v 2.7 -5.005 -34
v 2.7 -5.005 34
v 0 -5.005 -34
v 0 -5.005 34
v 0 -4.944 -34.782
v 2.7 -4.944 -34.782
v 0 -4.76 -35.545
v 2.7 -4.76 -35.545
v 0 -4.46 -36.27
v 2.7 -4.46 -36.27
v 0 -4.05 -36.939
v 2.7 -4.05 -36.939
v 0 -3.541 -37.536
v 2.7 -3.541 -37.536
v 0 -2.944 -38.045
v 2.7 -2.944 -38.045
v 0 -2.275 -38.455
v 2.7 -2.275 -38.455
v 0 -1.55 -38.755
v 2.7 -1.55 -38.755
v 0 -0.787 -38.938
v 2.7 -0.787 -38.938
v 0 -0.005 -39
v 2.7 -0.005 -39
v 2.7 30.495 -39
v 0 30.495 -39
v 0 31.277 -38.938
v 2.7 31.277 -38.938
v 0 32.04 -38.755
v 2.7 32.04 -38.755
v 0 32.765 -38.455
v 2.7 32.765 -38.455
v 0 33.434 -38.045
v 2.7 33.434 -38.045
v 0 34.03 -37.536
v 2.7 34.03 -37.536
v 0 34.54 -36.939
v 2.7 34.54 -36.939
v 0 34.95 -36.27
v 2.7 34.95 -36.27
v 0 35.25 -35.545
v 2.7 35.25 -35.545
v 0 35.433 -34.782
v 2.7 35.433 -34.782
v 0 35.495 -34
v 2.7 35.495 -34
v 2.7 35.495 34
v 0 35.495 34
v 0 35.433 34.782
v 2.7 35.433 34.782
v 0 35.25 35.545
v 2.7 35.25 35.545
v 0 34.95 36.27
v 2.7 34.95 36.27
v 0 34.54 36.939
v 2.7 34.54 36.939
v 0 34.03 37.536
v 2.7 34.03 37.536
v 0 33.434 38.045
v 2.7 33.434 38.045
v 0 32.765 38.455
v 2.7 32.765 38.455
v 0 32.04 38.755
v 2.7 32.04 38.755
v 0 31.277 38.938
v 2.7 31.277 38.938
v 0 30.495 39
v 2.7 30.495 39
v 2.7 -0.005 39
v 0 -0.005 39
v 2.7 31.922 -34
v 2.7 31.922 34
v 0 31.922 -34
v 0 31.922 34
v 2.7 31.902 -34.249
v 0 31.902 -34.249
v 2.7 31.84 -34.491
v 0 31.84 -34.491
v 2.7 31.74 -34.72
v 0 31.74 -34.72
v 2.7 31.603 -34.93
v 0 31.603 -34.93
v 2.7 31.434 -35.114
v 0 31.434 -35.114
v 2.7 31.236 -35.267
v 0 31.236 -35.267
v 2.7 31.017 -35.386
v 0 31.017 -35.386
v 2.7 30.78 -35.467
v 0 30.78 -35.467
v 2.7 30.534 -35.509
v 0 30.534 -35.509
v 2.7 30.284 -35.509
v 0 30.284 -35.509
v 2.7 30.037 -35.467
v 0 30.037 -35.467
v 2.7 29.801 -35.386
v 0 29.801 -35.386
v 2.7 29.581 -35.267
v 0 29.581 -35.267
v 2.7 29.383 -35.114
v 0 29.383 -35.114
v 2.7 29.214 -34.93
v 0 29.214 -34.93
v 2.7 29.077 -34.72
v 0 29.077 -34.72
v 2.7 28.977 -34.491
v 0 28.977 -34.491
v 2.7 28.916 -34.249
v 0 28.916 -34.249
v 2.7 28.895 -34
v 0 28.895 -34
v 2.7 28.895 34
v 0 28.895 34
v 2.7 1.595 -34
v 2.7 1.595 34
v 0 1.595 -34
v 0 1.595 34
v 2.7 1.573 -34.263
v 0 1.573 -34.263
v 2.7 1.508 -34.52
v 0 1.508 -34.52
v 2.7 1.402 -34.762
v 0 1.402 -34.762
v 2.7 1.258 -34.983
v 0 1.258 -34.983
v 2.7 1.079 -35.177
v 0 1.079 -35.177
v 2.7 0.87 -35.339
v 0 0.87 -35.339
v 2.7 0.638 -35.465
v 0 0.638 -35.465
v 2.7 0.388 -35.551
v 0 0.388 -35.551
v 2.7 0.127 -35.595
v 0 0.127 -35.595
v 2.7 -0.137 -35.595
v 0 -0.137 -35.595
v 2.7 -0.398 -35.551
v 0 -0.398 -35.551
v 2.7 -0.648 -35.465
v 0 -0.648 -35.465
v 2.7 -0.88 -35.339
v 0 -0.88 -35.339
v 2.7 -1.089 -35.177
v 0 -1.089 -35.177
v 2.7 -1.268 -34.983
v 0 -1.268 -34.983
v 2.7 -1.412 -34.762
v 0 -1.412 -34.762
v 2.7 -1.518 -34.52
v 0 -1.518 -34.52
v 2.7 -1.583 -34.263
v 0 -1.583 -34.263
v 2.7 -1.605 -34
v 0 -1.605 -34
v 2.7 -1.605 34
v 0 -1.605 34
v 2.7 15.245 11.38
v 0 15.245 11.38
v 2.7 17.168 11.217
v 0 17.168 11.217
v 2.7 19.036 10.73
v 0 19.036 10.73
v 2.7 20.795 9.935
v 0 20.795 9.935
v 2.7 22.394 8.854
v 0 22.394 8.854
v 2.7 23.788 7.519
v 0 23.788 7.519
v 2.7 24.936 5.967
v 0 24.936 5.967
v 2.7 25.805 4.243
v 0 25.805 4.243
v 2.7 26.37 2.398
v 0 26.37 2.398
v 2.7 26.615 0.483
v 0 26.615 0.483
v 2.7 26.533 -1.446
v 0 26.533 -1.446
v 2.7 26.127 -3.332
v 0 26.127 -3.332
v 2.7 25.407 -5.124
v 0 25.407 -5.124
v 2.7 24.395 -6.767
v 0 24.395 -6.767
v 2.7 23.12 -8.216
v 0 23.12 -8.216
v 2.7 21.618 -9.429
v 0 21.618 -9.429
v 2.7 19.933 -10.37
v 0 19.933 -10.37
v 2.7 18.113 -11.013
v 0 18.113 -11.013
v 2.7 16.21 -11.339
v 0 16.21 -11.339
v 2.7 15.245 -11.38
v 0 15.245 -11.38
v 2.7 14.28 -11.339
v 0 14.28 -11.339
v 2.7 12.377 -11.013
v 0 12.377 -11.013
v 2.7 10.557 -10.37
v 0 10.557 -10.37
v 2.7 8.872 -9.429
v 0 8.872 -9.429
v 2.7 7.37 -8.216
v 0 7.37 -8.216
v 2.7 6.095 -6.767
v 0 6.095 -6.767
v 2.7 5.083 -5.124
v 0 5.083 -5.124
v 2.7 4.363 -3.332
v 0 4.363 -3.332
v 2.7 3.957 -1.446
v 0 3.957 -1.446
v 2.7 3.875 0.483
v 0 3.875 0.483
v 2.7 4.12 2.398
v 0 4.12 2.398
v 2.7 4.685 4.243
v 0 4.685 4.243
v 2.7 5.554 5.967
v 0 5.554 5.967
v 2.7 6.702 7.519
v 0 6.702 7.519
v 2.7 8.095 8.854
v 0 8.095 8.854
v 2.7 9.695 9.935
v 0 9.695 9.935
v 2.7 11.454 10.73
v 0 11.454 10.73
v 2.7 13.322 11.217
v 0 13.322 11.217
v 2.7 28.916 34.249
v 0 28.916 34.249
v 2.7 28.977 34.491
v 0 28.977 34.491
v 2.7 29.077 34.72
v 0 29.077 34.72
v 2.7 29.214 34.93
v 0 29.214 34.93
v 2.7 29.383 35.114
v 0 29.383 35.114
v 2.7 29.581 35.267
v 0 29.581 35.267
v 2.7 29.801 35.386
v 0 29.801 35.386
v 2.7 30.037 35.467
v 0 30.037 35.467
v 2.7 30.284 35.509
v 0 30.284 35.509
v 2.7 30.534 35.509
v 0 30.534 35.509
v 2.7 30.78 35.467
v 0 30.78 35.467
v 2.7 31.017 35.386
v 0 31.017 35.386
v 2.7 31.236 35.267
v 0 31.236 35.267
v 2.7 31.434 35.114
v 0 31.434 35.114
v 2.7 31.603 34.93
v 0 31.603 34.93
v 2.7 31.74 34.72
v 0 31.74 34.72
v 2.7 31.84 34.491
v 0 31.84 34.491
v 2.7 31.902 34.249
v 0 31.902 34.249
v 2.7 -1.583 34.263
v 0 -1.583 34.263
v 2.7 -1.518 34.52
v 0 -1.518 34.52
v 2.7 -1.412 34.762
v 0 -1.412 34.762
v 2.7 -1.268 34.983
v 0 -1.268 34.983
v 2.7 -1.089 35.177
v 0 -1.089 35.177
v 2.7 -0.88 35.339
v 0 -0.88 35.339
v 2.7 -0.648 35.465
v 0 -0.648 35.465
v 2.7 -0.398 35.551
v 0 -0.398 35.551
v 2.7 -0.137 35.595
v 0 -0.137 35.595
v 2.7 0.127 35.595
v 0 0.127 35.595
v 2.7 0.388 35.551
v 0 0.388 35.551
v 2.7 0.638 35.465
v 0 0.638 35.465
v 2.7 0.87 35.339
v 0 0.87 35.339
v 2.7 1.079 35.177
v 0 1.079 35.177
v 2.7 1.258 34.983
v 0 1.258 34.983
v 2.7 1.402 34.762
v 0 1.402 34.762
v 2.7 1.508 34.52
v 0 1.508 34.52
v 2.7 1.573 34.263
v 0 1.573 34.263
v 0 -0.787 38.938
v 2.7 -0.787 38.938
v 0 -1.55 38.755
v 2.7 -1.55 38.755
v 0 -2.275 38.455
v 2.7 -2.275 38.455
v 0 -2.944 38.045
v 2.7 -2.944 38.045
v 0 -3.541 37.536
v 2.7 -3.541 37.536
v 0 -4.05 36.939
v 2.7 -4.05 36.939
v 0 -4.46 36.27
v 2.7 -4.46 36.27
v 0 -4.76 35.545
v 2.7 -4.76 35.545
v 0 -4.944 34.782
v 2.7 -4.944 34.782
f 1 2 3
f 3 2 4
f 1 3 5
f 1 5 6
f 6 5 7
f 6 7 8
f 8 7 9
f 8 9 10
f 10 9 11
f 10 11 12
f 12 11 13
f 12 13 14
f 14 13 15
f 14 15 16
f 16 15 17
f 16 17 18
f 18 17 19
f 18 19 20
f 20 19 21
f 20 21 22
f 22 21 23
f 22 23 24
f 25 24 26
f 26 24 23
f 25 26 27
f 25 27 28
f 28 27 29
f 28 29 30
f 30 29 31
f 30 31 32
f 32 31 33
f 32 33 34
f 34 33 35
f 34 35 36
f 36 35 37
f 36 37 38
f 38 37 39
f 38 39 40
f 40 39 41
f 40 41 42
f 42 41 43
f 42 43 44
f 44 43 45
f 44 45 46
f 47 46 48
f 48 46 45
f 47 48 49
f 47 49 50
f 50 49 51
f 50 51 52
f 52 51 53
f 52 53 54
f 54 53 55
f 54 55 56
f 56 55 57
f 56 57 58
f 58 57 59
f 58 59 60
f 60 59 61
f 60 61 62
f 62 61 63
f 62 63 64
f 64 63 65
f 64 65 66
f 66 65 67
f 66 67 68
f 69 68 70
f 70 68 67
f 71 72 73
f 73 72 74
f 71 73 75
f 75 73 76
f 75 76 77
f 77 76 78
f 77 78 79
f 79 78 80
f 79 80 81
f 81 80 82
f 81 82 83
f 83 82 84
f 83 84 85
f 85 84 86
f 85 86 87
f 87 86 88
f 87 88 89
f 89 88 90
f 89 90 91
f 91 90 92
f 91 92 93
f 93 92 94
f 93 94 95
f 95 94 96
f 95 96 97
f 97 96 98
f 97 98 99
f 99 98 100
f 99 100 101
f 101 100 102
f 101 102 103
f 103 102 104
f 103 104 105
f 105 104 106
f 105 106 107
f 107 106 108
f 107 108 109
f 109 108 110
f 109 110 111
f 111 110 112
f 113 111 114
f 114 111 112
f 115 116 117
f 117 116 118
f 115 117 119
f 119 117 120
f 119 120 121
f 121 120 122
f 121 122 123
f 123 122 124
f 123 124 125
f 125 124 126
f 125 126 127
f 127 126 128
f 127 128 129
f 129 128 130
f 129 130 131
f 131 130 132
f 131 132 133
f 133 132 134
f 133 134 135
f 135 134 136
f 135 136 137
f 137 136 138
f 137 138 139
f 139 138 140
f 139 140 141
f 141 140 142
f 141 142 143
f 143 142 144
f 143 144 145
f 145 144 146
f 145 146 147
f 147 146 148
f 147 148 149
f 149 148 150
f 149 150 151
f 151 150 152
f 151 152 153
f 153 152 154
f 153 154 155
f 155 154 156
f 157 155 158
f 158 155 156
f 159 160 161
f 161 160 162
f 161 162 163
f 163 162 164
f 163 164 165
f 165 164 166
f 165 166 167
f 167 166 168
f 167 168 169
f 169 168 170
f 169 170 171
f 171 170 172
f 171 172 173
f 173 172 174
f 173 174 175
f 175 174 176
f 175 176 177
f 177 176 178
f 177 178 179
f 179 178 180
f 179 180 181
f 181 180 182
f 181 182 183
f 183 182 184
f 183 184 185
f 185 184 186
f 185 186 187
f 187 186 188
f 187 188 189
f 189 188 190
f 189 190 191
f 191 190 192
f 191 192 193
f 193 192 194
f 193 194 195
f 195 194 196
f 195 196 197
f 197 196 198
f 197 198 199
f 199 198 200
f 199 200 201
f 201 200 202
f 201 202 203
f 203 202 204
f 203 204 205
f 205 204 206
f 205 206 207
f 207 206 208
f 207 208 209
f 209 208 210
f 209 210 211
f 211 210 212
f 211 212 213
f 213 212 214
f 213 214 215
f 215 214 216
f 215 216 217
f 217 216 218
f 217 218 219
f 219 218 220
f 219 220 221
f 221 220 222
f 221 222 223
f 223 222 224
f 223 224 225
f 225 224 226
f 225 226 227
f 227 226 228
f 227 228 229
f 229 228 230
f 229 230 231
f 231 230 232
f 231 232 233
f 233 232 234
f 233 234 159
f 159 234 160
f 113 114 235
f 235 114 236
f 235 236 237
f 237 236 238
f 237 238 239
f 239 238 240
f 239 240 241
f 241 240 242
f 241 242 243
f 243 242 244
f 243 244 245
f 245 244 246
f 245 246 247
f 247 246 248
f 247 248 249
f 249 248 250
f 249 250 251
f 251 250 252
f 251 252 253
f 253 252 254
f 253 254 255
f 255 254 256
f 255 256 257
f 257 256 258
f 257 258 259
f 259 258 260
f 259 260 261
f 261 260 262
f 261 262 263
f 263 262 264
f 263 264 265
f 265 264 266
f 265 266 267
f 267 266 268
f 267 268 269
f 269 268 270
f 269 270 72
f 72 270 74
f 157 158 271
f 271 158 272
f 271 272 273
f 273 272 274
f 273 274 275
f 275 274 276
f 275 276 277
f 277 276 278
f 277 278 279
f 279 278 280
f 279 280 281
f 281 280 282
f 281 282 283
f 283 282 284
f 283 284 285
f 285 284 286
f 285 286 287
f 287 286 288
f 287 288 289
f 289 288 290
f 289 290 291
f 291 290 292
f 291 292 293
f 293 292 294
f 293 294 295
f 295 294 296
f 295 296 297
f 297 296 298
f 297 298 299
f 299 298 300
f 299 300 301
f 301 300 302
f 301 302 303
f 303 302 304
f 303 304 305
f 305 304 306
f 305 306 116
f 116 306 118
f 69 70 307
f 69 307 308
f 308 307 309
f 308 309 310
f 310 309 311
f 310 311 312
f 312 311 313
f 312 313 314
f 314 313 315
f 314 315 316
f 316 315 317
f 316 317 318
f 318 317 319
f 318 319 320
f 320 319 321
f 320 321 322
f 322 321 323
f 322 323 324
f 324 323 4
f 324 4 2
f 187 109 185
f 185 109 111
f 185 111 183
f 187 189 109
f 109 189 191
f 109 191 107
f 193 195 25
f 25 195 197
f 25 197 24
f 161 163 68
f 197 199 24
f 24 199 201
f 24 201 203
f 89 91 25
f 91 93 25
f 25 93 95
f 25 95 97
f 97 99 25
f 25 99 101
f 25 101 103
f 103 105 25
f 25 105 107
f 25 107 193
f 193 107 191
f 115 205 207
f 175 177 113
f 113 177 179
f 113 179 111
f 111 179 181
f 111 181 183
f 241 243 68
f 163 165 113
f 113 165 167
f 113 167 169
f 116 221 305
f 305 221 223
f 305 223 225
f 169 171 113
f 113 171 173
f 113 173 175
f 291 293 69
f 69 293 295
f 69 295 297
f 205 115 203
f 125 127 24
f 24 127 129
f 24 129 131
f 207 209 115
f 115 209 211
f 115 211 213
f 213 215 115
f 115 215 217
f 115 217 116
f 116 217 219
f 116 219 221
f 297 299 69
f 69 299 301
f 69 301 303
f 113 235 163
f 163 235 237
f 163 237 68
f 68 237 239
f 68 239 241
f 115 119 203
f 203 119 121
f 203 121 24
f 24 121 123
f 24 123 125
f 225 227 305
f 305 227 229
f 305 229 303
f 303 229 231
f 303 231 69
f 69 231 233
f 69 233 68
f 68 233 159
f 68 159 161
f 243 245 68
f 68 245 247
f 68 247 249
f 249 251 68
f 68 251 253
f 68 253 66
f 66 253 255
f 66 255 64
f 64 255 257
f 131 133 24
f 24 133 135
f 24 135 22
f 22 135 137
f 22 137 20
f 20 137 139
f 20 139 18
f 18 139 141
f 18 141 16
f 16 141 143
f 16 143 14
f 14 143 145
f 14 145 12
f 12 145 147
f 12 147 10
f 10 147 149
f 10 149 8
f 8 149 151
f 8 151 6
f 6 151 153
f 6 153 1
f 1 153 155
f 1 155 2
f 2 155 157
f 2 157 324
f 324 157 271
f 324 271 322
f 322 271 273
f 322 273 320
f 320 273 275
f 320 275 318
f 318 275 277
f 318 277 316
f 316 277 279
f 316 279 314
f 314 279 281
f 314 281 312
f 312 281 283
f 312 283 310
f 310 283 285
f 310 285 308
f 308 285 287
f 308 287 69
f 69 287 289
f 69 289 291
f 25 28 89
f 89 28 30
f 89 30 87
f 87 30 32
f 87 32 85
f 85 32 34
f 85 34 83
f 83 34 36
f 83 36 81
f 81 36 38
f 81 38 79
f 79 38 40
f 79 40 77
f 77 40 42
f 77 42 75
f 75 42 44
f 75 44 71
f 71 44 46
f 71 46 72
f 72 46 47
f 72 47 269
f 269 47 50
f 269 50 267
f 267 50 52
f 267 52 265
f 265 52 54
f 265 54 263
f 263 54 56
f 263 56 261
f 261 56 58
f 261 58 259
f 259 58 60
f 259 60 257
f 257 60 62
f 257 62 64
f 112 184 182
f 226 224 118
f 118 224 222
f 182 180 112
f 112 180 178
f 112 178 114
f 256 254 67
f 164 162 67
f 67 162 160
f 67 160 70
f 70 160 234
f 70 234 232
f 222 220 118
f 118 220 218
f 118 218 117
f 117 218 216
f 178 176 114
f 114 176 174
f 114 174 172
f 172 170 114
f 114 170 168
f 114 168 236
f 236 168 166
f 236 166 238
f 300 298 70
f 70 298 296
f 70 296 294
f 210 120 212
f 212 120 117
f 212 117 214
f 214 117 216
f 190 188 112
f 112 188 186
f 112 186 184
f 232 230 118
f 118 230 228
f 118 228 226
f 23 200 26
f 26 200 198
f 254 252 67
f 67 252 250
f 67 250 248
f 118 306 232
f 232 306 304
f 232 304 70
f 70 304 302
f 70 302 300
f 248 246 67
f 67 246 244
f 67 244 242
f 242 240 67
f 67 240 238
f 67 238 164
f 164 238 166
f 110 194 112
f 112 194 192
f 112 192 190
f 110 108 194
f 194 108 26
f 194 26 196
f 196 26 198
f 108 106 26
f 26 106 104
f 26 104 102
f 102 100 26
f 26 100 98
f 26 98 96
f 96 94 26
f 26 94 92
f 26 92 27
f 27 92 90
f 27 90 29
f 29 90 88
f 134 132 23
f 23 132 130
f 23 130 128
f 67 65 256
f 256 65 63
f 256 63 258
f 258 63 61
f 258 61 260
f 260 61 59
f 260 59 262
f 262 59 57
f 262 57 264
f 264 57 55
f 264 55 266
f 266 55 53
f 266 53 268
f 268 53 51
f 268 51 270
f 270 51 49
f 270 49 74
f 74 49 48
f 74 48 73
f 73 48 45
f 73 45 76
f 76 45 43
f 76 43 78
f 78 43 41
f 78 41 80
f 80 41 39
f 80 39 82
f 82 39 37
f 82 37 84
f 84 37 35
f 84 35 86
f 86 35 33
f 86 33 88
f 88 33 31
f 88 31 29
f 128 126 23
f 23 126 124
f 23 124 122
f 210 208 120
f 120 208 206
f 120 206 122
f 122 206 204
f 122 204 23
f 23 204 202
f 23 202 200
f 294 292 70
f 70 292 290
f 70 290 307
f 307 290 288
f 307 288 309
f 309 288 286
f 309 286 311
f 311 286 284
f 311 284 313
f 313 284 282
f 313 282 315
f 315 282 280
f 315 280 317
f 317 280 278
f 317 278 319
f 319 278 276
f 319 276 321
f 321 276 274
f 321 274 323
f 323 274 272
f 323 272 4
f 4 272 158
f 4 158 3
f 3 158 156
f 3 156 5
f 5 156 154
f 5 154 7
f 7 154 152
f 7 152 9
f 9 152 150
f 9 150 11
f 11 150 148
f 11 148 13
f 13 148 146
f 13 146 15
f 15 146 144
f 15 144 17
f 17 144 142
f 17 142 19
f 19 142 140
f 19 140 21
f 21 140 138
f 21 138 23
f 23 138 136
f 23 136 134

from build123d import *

# Parameters (mm, degrees)
SKETCH_1_R      = 11.380487233
EXTRUDE_1_DEPTH = 2.7


with BuildPart() as part:
    # 草图1 → 凸台-拉伸1 (new body)
    with BuildSketch(Plane(origin=(0, 0, 0), x_dir=(0, 0, -1), z_dir=(1, 0, 0))):
        with BuildLine():
            Line((34, -5.005093632), (-34, -5.005093632))
            ThreePointArc((-34, -5.005093632), (-37.535533906, -3.540627537), (-39, -0.005093632))
            Line((-39, -0.005093632), (-39, 30.494906368))
            ThreePointArc((-39, 30.494906368), (-37.535533906, 34.030440274), (-34, 35.494906368))
            Line((-34, 35.494906368), (34, 35.494906368))
            ThreePointArc((34, 35.494906368), (37.535533906, 34.030440274), (39, 30.494906368))
            Line((39, 30.494906368), (39, -0.005093632))
            ThreePointArc((39, -0.005093632), (37.535533906, -3.540627537), (34, -5.005093632))
        make_face()
        with Locations(Location((0, 15.244906368, 0), (0, 0, 180))):
            Circle(SKETCH_1_R, mode=Mode.SUBTRACT)
        with BuildLine():
            Line((0, 1.594906368), (34, 1.594906368))
            ThreePointArc((34, 1.594906368), (35.6, -0.005093632), (34, -1.605093632))
            Line((34, -1.605093632), (0, -1.605093632))
            Line((0, -1.605093632), (-34, -1.605093632))
            ThreePointArc((-34, -1.605093632), (-35.6, -0.005093632), (-34, 1.594906368))
            Line((-34, 1.594906368), (0, 1.594906368))
        make_face(mode=Mode.SUBTRACT)
        with BuildLine():
            Line((0, 31.922276961), (34, 31.922276961))
            ThreePointArc((34, 31.922276961), (35.513685296, 30.408591665), (34, 28.894906368))
            Line((34, 28.894906368), (0, 28.894906368))
            Line((0, 28.894906368), (-34, 28.894906368))
            ThreePointArc((-34, 28.894906368), (-35.513685296, 30.408591665), (-34, 31.922276961))
            Line((-34, 31.922276961), (0, 31.922276961))
        make_face(mode=Mode.SUBTRACT)
    extrude(amount=EXTRUDE_1_DEPTH)


solid = part.part
